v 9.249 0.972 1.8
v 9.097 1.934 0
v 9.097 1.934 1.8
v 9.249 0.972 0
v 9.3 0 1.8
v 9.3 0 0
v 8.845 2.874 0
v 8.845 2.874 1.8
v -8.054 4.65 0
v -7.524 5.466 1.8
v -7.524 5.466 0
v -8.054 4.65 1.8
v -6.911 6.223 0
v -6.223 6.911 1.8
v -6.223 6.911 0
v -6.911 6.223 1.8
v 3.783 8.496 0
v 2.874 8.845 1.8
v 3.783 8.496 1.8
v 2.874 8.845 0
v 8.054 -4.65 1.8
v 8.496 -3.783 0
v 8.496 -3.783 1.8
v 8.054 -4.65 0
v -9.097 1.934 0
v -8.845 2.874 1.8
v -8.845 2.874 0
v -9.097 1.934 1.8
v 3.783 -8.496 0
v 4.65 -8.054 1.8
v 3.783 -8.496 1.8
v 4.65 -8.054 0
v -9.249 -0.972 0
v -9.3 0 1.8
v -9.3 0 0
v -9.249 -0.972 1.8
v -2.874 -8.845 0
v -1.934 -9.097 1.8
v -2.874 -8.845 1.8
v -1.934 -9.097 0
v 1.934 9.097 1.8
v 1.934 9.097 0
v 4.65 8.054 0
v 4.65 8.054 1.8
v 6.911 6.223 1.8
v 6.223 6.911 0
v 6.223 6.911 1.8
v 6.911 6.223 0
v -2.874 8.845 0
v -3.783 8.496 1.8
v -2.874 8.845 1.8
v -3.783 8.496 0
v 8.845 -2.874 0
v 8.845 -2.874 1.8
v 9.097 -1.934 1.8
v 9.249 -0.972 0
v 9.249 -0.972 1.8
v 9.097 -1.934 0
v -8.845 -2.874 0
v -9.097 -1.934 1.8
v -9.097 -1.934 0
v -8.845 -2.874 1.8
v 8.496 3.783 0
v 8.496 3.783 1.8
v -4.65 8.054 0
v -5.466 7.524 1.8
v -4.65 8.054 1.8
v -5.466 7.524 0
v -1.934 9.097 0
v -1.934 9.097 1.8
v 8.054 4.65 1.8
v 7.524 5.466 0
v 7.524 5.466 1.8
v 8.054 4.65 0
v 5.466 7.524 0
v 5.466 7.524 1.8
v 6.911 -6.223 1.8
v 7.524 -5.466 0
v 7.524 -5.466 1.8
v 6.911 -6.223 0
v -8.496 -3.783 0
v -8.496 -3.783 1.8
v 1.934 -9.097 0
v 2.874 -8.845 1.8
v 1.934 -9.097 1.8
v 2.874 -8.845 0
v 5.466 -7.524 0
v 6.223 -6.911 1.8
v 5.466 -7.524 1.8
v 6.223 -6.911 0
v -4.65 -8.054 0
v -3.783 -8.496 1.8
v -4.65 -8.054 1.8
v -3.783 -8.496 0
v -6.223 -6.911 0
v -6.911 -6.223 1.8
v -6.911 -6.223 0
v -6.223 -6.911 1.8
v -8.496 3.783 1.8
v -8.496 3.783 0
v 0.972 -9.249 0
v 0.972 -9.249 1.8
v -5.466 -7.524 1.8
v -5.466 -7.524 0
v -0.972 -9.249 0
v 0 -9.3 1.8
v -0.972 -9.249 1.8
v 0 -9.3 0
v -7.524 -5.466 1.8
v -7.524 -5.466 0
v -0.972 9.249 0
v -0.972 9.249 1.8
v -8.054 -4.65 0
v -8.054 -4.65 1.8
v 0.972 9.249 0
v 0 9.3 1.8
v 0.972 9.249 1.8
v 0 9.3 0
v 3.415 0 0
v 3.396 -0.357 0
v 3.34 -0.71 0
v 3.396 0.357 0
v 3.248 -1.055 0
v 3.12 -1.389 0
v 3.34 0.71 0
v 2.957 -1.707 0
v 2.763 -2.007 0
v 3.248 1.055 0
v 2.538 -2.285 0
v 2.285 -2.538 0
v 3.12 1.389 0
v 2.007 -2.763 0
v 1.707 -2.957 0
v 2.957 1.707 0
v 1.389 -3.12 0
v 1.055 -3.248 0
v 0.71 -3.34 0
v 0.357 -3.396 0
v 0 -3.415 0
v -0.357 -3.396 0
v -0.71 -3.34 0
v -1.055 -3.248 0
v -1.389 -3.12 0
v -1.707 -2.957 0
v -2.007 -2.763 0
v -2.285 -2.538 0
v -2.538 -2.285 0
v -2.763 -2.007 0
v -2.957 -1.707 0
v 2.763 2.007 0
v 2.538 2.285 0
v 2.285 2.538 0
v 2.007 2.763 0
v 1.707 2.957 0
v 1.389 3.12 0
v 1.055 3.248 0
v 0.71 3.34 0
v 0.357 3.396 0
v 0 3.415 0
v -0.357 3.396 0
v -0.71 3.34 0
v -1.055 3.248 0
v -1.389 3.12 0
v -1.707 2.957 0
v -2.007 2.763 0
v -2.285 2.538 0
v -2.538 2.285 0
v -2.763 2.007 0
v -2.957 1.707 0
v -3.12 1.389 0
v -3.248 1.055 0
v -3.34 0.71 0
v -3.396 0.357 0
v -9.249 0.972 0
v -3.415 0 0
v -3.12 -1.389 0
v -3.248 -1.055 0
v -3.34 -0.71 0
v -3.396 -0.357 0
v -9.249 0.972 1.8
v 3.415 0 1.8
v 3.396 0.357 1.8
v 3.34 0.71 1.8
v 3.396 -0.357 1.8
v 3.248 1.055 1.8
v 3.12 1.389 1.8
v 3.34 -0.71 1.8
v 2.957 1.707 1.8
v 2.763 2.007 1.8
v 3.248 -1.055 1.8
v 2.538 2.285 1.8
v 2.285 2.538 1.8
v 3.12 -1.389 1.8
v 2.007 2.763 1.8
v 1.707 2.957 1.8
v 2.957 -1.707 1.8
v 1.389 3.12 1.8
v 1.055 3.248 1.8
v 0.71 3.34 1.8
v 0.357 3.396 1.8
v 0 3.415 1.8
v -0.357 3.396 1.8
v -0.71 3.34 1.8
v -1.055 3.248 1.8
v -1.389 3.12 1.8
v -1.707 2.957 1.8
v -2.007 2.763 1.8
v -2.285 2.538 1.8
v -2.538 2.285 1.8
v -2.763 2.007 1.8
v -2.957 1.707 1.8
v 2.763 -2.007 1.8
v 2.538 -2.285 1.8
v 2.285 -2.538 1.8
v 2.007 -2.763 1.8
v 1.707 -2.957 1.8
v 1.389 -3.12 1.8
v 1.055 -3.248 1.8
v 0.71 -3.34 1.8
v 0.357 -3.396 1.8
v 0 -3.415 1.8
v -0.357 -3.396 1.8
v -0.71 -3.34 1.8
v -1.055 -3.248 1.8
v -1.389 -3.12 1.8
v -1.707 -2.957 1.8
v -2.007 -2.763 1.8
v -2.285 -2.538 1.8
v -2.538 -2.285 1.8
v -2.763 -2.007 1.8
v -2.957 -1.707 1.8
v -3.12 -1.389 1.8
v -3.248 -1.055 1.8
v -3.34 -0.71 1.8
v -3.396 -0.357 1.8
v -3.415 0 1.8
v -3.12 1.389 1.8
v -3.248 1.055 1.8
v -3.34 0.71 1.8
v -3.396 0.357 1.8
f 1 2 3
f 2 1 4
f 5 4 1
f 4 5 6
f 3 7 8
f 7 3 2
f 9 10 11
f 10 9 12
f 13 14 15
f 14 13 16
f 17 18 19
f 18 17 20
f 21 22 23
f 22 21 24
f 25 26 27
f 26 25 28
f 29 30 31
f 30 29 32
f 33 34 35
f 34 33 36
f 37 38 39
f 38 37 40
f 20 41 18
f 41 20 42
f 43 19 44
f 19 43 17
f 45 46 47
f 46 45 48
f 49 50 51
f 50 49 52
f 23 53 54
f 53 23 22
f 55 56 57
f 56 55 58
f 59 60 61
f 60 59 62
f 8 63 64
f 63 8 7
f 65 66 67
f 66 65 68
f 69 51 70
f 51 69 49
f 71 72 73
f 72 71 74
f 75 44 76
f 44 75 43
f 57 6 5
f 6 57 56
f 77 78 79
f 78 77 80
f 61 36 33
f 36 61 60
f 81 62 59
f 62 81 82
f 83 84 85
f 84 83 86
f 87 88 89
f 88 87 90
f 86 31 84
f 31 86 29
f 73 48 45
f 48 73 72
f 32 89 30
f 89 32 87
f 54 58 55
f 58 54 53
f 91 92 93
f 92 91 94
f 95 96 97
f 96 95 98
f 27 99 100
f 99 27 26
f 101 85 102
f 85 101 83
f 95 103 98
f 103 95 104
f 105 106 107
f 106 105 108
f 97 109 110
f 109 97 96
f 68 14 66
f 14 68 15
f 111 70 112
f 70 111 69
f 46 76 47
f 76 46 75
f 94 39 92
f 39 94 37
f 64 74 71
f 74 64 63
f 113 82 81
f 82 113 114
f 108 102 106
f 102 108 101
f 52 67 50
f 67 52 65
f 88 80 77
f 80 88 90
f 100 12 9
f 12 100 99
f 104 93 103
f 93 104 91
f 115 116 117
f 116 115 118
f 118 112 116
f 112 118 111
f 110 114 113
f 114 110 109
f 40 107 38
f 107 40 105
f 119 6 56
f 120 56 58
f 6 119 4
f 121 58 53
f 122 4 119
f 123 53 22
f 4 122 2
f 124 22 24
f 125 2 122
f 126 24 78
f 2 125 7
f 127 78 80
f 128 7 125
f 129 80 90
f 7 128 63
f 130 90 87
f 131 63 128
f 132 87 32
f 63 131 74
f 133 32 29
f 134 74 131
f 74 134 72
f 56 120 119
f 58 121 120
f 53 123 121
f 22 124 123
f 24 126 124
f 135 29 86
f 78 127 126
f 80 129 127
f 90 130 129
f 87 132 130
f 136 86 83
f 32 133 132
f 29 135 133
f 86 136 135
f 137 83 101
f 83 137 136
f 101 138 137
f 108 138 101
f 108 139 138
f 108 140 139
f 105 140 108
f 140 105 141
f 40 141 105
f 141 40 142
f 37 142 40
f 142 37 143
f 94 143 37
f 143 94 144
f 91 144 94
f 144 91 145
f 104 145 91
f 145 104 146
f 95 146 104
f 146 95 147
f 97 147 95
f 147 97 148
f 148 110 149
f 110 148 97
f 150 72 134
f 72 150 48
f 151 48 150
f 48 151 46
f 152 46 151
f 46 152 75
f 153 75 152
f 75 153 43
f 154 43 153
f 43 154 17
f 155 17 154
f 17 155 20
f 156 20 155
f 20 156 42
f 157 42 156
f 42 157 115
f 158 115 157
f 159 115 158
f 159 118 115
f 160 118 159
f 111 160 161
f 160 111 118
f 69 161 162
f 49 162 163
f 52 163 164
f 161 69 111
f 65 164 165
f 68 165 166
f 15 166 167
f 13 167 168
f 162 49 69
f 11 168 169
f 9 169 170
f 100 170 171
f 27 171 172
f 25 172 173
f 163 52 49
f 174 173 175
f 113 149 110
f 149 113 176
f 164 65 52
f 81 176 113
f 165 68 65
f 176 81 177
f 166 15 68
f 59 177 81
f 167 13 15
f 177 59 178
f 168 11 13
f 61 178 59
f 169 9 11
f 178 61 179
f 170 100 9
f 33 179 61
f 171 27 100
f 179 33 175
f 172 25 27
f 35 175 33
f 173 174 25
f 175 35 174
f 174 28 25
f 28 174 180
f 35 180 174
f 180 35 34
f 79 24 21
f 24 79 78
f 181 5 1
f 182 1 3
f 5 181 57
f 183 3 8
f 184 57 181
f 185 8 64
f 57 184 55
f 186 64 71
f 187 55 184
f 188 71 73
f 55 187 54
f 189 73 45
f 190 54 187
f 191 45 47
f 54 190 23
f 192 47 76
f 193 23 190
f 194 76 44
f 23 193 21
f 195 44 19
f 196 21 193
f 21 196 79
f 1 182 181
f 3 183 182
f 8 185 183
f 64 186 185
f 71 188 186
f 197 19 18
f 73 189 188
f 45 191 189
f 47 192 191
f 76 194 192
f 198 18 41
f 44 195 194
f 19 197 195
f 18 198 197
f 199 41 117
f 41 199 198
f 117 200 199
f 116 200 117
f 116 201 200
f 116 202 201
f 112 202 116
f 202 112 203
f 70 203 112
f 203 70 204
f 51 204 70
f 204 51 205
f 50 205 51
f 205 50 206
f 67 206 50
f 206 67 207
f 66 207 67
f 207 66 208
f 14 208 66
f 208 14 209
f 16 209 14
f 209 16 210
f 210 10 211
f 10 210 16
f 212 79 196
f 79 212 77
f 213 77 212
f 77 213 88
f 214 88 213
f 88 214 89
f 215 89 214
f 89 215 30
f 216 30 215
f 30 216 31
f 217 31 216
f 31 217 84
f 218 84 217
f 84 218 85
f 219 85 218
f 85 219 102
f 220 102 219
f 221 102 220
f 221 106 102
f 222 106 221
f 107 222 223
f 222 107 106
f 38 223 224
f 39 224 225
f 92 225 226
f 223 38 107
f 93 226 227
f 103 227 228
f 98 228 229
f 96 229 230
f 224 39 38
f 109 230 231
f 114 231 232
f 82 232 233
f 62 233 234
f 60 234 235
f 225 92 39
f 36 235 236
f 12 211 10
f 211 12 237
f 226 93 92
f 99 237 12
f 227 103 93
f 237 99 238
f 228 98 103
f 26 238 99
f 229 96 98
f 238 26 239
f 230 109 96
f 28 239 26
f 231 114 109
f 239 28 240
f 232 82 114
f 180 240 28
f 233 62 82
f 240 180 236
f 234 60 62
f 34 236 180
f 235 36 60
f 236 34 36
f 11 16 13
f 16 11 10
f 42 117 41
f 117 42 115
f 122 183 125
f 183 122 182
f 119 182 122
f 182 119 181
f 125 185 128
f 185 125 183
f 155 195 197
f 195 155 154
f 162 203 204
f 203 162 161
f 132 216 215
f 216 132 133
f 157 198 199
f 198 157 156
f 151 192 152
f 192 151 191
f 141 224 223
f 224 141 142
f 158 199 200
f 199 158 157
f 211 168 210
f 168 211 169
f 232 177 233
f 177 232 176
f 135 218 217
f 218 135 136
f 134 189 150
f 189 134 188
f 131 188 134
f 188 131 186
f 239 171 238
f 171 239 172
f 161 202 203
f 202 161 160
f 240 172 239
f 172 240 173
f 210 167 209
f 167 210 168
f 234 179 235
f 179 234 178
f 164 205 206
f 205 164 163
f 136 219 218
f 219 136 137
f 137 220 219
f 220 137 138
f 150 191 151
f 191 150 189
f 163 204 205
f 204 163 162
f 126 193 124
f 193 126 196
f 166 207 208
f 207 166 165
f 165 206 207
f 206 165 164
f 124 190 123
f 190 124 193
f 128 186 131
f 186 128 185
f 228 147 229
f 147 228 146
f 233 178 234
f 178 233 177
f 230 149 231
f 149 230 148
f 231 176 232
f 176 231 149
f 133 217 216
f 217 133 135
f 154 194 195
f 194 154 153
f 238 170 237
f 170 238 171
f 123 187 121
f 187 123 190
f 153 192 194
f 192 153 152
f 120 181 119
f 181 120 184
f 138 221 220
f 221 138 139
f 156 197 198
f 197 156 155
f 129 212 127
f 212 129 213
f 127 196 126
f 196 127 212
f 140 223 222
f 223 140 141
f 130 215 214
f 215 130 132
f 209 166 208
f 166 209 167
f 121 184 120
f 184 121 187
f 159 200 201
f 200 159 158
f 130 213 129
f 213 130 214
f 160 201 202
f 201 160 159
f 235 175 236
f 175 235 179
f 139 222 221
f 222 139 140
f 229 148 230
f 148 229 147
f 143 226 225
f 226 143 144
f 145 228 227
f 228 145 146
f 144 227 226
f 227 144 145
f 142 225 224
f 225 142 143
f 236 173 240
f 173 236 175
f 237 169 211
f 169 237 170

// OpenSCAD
$fn = 100;

inner_dia = 6.83;
outer_dia = 18.6;
thick     = 1.8;

module washer (inner, outer, thickness) {

	difference() {  
		cylinder(d=outer, h=thickness, $fn=60);  
		translate([0,0,-thickness])  
		cylinder(d=inner, h=thickness*3, $fn=60);  
	};  
}

washer (inner_dia, outer_dia, thick);
